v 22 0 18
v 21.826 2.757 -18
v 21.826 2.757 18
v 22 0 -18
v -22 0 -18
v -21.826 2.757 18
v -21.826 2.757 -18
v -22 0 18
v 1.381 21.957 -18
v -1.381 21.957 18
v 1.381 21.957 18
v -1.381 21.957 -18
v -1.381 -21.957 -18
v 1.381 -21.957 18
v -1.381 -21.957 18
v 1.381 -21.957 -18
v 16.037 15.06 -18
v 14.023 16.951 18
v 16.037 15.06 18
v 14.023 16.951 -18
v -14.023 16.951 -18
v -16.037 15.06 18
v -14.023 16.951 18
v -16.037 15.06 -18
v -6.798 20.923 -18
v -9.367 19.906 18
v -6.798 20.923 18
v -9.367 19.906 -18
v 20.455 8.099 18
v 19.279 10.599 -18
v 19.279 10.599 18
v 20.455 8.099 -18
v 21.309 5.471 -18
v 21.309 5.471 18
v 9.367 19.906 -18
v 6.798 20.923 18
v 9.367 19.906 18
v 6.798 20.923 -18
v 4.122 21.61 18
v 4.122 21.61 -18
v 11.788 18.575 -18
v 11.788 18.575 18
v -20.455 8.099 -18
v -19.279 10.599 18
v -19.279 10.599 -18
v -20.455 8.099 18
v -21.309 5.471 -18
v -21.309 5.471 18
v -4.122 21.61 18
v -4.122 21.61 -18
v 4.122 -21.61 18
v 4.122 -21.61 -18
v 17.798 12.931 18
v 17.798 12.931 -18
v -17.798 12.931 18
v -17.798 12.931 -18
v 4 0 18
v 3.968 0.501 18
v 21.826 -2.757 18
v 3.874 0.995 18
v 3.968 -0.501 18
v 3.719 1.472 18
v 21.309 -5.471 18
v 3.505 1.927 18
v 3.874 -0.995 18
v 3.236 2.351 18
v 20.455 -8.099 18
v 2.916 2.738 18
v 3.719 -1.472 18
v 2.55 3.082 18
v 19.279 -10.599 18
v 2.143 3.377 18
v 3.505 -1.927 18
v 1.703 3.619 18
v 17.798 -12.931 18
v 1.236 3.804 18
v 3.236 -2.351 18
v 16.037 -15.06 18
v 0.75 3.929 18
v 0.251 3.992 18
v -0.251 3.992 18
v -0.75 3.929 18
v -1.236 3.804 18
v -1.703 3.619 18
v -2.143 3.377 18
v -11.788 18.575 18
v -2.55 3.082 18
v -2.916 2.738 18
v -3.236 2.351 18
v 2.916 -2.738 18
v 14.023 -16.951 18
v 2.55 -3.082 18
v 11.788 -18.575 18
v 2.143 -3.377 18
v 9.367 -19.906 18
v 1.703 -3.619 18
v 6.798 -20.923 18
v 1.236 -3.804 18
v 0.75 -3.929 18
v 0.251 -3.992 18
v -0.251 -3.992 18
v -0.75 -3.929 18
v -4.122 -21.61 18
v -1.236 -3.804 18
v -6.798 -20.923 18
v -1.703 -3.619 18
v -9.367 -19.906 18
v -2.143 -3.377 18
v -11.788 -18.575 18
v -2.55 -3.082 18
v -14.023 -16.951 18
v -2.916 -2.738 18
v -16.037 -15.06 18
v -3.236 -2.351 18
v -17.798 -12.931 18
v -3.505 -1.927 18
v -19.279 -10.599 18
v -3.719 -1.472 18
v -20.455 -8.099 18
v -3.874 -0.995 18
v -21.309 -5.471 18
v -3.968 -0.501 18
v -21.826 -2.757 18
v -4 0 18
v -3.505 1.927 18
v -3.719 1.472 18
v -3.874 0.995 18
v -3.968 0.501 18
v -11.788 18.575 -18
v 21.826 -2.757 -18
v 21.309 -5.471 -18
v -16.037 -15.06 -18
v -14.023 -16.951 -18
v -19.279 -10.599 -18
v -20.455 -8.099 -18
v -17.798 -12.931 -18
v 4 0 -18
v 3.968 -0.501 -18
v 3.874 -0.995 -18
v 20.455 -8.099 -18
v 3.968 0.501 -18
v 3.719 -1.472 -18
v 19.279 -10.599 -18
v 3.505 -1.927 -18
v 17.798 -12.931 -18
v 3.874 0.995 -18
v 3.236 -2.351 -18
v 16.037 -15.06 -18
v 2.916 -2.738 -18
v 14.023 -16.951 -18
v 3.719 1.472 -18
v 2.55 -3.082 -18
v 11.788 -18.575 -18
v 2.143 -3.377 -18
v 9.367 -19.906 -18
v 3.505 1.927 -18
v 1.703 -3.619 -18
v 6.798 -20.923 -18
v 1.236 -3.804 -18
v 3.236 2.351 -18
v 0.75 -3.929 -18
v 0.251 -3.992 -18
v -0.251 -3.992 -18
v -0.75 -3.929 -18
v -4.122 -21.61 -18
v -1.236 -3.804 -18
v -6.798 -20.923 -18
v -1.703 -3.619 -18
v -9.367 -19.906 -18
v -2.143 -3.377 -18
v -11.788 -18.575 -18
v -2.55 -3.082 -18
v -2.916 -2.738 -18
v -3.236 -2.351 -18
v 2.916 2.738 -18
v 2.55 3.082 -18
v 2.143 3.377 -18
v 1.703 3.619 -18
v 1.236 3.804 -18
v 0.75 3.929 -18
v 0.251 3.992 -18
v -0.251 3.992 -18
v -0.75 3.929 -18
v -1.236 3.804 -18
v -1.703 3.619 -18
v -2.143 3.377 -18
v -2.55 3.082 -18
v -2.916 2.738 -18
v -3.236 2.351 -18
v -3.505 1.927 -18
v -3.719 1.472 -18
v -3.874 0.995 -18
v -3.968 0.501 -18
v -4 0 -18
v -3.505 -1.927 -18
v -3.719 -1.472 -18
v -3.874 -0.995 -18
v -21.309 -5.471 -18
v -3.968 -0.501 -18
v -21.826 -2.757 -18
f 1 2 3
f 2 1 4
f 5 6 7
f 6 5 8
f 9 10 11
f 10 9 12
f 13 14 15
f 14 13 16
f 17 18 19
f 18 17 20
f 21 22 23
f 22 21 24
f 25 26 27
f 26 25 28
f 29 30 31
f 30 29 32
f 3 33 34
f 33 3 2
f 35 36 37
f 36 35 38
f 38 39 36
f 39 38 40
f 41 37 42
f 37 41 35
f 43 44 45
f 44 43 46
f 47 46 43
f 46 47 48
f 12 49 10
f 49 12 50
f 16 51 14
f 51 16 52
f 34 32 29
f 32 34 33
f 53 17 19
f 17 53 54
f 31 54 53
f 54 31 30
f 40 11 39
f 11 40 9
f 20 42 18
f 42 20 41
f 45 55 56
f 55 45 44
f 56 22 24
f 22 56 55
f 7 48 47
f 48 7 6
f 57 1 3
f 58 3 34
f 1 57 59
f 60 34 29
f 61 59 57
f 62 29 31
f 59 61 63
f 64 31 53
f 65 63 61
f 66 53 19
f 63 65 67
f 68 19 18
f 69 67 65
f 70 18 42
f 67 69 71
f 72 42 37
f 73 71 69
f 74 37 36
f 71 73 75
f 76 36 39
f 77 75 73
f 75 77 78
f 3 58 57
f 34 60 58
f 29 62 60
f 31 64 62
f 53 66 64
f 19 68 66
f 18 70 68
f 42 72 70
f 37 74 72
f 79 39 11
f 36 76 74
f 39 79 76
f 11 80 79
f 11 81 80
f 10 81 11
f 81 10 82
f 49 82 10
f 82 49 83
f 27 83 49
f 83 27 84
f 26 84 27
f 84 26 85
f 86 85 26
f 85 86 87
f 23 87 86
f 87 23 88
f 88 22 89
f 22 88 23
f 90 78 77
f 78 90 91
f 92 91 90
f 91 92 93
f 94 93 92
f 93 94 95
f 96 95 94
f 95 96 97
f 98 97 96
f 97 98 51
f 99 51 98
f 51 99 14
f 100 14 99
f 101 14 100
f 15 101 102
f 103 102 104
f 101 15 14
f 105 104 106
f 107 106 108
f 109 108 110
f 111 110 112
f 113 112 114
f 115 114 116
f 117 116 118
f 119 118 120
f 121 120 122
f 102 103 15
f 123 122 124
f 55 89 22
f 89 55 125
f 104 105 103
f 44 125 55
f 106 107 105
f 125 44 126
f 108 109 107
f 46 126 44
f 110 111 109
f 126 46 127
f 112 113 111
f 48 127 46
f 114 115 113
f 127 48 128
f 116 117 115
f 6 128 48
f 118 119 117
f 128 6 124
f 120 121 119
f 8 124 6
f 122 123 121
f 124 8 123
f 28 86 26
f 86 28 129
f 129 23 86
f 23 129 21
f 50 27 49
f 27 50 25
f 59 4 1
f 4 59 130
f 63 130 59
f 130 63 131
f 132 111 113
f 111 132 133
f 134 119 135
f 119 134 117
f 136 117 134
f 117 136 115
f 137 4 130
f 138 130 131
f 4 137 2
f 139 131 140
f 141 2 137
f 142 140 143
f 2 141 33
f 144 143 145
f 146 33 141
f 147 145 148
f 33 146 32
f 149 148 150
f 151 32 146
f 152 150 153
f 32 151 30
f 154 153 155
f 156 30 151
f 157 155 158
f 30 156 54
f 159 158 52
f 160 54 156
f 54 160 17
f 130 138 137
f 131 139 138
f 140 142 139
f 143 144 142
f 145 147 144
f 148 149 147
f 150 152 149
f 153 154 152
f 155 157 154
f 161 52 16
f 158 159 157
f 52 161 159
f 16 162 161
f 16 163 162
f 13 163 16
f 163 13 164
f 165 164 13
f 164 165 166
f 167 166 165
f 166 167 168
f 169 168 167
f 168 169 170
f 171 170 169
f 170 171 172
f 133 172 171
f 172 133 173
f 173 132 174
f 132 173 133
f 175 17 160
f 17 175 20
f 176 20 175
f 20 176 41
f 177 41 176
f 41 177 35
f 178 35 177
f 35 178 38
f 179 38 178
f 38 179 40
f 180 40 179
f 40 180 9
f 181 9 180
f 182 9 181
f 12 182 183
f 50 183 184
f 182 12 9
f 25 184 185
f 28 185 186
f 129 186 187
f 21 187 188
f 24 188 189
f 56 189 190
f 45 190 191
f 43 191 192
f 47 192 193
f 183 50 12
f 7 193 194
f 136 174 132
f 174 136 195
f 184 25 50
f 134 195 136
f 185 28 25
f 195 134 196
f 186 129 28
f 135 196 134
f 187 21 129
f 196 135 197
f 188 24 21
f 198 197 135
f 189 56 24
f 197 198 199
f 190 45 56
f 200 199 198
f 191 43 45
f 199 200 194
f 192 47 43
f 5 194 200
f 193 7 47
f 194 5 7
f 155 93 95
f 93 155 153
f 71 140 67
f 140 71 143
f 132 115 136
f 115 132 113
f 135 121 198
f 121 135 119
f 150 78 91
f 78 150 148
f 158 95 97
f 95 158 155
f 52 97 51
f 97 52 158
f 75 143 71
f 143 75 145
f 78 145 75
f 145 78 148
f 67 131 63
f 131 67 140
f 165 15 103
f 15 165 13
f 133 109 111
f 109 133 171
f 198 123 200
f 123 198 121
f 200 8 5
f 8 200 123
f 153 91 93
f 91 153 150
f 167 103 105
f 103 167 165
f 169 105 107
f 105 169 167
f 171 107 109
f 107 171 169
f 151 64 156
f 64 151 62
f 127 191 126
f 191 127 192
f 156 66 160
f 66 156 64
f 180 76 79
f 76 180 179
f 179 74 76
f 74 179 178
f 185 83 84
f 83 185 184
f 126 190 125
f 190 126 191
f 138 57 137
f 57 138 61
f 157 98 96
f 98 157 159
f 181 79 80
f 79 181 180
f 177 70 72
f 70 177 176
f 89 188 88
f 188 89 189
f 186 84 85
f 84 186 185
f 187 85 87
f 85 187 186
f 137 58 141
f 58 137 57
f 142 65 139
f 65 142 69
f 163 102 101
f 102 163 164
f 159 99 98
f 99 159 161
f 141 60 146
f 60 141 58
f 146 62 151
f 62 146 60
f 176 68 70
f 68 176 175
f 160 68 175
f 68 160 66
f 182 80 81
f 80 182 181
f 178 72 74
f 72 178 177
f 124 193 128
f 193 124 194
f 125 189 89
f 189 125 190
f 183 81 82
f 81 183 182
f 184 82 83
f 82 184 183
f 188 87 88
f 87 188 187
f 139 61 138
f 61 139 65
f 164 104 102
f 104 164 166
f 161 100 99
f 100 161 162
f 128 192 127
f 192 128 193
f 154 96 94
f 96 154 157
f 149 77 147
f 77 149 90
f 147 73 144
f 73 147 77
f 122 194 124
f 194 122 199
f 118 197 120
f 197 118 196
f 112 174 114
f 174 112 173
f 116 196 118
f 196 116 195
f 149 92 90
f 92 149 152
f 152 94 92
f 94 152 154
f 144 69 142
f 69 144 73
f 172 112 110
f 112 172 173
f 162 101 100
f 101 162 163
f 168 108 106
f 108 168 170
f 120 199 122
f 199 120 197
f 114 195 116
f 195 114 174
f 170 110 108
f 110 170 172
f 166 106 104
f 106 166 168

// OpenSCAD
$fn = 50;


difference() {
	union() {
		translate(v = [0, 0, -18.0000000000]) {
			cylinder(h = 36, r = 22.0000000000);
		}
	}
	union() {
		translate(v = [0, 0, -100.0000000000]) {
			cylinder(h = 200, r = 4);
		}
	}
}
